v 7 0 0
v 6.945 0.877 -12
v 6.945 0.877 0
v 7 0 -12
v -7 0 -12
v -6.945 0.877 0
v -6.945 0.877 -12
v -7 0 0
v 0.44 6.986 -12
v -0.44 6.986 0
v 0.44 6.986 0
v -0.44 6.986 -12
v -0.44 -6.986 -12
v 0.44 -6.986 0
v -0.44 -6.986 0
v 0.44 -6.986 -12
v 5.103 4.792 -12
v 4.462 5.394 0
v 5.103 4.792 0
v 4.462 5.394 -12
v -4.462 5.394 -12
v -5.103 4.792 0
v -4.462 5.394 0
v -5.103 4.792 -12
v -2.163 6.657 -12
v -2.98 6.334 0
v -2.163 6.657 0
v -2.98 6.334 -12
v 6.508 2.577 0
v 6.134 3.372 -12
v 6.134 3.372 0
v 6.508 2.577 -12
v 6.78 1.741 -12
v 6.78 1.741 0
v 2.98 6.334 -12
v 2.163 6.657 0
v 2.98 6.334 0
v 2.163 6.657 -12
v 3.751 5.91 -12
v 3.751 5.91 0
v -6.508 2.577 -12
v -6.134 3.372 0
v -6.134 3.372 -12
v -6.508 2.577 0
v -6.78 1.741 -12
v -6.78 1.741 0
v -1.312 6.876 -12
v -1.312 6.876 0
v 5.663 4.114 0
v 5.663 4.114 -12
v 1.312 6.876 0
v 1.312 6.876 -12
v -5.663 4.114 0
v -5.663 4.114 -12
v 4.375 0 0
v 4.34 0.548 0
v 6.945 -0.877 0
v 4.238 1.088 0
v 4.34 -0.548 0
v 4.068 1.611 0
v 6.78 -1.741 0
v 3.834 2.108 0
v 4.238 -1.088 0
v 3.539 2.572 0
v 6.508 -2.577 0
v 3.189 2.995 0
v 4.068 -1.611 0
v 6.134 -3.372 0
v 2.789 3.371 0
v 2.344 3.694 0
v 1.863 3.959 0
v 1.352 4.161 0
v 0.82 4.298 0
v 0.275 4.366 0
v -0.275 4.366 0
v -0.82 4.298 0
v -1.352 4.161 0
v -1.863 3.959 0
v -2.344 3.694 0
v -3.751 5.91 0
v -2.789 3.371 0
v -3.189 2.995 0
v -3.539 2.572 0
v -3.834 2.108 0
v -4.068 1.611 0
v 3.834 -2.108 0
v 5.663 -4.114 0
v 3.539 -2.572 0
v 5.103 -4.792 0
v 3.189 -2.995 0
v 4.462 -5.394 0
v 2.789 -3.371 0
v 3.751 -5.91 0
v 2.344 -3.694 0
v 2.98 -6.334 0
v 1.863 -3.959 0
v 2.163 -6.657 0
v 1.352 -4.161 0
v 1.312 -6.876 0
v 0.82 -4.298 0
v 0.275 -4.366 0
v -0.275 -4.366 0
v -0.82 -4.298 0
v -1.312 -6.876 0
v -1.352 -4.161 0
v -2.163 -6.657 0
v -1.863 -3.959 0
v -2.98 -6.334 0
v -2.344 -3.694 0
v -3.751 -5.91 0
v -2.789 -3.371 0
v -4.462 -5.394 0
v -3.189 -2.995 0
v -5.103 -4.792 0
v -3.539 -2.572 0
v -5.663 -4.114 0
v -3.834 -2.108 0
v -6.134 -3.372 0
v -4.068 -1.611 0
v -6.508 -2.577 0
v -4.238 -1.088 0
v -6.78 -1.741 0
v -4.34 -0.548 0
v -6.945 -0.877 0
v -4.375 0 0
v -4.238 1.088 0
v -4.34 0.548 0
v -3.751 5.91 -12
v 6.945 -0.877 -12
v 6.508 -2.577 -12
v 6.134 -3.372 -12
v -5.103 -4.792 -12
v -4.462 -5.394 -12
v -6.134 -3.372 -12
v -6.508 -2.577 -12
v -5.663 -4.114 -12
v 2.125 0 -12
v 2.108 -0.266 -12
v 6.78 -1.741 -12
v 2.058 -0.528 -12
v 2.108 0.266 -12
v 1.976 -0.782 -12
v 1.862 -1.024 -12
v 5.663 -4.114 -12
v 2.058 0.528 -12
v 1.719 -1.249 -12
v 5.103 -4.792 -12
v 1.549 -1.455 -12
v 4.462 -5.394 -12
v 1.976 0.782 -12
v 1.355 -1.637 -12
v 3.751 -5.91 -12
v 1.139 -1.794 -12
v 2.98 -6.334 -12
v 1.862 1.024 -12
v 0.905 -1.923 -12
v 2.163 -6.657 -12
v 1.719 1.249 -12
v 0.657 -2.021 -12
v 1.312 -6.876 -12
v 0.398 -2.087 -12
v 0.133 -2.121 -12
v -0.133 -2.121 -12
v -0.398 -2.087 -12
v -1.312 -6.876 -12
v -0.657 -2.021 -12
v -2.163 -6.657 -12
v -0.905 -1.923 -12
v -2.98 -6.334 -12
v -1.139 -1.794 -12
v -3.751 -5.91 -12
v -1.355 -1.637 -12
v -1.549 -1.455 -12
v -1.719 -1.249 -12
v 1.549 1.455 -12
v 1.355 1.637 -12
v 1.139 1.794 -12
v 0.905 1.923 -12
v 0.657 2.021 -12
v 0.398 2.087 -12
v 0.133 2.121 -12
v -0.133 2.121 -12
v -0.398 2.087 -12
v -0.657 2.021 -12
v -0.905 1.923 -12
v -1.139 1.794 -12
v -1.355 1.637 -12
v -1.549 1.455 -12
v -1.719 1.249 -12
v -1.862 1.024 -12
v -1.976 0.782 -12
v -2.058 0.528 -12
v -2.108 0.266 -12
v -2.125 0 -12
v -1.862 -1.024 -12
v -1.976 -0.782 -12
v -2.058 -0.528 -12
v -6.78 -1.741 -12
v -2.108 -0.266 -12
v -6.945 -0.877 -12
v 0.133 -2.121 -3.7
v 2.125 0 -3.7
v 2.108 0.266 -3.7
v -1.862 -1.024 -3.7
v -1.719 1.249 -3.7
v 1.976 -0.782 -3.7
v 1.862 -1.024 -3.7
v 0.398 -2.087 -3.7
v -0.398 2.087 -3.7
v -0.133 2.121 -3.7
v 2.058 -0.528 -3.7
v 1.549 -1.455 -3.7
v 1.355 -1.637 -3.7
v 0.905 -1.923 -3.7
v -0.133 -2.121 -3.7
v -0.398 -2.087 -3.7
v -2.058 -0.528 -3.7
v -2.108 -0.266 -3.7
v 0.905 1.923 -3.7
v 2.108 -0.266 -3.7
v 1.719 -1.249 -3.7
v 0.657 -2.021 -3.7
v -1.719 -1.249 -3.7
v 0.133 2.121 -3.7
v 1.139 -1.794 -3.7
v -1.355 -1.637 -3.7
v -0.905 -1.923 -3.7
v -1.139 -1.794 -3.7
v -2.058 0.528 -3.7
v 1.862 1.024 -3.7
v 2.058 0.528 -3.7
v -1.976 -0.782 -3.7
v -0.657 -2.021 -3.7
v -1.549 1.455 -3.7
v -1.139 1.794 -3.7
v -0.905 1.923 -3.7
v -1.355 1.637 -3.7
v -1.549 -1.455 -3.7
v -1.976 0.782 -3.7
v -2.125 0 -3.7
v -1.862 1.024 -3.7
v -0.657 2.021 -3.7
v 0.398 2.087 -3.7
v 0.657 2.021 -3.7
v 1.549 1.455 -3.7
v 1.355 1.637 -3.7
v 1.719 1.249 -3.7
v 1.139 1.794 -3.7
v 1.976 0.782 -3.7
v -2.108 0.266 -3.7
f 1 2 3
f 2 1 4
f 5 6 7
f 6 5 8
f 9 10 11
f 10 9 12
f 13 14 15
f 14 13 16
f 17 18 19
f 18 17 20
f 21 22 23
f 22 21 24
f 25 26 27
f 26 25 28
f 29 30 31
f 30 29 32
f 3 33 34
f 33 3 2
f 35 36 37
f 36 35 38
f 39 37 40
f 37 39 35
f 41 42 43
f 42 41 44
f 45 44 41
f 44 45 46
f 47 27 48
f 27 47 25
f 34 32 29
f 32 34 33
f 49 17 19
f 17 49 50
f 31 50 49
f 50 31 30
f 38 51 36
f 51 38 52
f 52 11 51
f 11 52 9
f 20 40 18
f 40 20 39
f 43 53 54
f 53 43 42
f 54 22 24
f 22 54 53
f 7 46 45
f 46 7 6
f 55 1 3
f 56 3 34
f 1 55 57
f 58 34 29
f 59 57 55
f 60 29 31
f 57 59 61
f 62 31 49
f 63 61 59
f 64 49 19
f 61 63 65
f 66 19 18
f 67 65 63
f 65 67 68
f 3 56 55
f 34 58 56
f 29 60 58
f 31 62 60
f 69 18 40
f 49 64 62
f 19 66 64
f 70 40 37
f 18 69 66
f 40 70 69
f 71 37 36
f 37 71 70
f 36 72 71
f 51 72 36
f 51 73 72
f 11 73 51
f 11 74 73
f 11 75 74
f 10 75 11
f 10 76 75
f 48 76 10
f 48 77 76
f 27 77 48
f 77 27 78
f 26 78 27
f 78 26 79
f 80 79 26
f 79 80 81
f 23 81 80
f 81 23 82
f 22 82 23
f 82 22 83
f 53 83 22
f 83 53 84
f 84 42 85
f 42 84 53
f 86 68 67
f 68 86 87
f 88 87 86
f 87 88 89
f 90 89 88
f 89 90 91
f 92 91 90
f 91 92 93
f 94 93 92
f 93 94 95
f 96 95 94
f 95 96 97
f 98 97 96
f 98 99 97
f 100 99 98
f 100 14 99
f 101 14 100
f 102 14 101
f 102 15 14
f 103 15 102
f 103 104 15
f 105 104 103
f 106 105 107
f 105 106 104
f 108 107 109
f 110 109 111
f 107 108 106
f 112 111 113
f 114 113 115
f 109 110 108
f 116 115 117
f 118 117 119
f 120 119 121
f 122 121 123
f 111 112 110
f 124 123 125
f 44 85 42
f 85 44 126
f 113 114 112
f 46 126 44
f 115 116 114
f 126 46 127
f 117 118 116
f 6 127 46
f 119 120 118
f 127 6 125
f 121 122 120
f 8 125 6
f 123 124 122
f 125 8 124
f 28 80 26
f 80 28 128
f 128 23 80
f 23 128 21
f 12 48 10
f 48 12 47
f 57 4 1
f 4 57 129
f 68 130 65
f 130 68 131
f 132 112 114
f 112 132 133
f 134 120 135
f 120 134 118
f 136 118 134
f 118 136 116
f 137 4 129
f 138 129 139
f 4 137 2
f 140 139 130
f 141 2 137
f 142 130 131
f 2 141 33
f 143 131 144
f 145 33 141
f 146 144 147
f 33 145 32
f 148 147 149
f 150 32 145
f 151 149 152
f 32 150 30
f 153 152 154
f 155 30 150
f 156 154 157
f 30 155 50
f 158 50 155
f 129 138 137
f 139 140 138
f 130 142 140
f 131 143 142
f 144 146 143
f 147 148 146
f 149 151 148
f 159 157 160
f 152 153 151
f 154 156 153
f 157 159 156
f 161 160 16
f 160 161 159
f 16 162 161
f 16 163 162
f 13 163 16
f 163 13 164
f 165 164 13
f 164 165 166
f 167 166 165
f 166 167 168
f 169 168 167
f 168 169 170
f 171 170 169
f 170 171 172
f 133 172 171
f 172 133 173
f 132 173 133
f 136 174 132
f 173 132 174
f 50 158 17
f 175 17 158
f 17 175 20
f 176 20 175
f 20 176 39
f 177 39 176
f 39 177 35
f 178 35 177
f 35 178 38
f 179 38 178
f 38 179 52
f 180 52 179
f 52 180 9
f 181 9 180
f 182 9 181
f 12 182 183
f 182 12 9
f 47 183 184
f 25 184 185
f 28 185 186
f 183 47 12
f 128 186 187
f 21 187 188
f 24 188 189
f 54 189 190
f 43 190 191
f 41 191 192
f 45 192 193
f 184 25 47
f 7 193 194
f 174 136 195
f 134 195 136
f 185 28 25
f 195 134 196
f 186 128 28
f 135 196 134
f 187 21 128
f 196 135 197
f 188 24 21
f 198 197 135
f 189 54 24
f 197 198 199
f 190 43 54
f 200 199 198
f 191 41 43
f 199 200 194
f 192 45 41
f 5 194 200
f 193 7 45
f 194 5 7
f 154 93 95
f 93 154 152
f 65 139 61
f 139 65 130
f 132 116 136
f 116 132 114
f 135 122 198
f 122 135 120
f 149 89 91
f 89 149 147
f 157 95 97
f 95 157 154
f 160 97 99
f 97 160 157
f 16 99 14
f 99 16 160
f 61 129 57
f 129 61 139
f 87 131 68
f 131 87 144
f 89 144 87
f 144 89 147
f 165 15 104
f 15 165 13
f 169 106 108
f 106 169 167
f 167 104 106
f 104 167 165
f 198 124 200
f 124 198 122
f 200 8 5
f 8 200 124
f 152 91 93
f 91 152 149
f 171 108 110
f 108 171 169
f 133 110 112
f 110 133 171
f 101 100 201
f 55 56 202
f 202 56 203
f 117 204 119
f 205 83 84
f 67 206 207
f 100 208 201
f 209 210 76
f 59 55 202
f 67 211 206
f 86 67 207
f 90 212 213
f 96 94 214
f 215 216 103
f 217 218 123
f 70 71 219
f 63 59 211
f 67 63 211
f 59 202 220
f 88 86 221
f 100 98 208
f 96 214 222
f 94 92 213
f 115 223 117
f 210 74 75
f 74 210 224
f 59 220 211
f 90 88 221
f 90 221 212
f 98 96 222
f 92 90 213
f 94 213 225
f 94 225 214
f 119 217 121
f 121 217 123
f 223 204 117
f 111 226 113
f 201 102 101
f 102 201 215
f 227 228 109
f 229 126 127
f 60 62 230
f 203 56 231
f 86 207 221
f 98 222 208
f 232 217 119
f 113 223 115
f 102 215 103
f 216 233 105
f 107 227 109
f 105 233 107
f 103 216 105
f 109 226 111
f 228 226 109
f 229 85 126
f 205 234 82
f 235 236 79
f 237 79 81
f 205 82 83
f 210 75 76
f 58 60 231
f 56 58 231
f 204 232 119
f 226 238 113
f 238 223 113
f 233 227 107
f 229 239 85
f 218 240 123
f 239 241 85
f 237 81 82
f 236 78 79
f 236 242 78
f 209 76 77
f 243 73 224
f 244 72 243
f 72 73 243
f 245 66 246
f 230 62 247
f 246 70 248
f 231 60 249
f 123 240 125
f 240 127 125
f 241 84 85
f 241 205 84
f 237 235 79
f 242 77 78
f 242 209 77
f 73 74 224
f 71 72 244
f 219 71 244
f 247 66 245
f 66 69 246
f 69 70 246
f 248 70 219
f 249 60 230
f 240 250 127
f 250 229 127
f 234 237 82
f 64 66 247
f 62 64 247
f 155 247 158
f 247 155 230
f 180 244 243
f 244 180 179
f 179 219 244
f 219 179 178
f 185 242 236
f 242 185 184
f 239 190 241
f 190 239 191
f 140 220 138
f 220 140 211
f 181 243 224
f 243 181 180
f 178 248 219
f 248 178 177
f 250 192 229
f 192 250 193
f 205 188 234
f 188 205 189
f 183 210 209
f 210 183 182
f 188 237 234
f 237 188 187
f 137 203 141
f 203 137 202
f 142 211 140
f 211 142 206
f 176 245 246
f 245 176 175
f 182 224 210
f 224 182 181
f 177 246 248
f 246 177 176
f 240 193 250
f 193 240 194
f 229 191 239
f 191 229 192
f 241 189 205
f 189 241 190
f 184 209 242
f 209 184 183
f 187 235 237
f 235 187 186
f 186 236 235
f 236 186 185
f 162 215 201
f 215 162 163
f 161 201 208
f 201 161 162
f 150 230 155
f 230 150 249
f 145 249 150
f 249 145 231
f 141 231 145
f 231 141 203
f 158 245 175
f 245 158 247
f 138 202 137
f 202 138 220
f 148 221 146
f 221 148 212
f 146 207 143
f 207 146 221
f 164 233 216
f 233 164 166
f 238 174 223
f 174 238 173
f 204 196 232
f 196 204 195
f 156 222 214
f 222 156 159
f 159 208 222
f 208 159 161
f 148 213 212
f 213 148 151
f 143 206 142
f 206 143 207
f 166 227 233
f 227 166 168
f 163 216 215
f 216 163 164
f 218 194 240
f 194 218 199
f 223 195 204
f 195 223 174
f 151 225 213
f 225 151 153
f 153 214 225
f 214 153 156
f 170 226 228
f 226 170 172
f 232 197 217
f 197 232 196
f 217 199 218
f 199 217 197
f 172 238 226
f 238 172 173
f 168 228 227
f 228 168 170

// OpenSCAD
$fn = 50;


difference() {
	union() {
		translate(v = [0, 0, -12.0000000000]) {
			cylinder(h = 12, r = 7.0000000000);
		}
		translate(v = [0, 0, -12.0000000000]) {
			cylinder(h = 12, r = 2.8750000000);
		}
	}
	union() {
		translate(v = [0, 0, 0]) {
			rotate(a = [0, 0, 0]) {
				difference() {
					union() {
						translate(v = [0, 0, -12.0000000000]) {
							cylinder(h = 12, r = 2.0000000000);
						}
						translate(v = [0, 0, -3.7000000000]) {
							cylinder(h = 3.7000000000, r1 = 2.1250000000, r2 = 4.3750000000);
						}
						translate(v = [0, 0, -12.0000000000]) {
							cylinder(h = 12, r = 2.1250000000);
						}
						translate(v = [0, 0, -12.0000000000]) {
							cylinder(h = 12, r = 2.0000000000);
						}
					}
					union();
				}
			}
		}
	}
}
